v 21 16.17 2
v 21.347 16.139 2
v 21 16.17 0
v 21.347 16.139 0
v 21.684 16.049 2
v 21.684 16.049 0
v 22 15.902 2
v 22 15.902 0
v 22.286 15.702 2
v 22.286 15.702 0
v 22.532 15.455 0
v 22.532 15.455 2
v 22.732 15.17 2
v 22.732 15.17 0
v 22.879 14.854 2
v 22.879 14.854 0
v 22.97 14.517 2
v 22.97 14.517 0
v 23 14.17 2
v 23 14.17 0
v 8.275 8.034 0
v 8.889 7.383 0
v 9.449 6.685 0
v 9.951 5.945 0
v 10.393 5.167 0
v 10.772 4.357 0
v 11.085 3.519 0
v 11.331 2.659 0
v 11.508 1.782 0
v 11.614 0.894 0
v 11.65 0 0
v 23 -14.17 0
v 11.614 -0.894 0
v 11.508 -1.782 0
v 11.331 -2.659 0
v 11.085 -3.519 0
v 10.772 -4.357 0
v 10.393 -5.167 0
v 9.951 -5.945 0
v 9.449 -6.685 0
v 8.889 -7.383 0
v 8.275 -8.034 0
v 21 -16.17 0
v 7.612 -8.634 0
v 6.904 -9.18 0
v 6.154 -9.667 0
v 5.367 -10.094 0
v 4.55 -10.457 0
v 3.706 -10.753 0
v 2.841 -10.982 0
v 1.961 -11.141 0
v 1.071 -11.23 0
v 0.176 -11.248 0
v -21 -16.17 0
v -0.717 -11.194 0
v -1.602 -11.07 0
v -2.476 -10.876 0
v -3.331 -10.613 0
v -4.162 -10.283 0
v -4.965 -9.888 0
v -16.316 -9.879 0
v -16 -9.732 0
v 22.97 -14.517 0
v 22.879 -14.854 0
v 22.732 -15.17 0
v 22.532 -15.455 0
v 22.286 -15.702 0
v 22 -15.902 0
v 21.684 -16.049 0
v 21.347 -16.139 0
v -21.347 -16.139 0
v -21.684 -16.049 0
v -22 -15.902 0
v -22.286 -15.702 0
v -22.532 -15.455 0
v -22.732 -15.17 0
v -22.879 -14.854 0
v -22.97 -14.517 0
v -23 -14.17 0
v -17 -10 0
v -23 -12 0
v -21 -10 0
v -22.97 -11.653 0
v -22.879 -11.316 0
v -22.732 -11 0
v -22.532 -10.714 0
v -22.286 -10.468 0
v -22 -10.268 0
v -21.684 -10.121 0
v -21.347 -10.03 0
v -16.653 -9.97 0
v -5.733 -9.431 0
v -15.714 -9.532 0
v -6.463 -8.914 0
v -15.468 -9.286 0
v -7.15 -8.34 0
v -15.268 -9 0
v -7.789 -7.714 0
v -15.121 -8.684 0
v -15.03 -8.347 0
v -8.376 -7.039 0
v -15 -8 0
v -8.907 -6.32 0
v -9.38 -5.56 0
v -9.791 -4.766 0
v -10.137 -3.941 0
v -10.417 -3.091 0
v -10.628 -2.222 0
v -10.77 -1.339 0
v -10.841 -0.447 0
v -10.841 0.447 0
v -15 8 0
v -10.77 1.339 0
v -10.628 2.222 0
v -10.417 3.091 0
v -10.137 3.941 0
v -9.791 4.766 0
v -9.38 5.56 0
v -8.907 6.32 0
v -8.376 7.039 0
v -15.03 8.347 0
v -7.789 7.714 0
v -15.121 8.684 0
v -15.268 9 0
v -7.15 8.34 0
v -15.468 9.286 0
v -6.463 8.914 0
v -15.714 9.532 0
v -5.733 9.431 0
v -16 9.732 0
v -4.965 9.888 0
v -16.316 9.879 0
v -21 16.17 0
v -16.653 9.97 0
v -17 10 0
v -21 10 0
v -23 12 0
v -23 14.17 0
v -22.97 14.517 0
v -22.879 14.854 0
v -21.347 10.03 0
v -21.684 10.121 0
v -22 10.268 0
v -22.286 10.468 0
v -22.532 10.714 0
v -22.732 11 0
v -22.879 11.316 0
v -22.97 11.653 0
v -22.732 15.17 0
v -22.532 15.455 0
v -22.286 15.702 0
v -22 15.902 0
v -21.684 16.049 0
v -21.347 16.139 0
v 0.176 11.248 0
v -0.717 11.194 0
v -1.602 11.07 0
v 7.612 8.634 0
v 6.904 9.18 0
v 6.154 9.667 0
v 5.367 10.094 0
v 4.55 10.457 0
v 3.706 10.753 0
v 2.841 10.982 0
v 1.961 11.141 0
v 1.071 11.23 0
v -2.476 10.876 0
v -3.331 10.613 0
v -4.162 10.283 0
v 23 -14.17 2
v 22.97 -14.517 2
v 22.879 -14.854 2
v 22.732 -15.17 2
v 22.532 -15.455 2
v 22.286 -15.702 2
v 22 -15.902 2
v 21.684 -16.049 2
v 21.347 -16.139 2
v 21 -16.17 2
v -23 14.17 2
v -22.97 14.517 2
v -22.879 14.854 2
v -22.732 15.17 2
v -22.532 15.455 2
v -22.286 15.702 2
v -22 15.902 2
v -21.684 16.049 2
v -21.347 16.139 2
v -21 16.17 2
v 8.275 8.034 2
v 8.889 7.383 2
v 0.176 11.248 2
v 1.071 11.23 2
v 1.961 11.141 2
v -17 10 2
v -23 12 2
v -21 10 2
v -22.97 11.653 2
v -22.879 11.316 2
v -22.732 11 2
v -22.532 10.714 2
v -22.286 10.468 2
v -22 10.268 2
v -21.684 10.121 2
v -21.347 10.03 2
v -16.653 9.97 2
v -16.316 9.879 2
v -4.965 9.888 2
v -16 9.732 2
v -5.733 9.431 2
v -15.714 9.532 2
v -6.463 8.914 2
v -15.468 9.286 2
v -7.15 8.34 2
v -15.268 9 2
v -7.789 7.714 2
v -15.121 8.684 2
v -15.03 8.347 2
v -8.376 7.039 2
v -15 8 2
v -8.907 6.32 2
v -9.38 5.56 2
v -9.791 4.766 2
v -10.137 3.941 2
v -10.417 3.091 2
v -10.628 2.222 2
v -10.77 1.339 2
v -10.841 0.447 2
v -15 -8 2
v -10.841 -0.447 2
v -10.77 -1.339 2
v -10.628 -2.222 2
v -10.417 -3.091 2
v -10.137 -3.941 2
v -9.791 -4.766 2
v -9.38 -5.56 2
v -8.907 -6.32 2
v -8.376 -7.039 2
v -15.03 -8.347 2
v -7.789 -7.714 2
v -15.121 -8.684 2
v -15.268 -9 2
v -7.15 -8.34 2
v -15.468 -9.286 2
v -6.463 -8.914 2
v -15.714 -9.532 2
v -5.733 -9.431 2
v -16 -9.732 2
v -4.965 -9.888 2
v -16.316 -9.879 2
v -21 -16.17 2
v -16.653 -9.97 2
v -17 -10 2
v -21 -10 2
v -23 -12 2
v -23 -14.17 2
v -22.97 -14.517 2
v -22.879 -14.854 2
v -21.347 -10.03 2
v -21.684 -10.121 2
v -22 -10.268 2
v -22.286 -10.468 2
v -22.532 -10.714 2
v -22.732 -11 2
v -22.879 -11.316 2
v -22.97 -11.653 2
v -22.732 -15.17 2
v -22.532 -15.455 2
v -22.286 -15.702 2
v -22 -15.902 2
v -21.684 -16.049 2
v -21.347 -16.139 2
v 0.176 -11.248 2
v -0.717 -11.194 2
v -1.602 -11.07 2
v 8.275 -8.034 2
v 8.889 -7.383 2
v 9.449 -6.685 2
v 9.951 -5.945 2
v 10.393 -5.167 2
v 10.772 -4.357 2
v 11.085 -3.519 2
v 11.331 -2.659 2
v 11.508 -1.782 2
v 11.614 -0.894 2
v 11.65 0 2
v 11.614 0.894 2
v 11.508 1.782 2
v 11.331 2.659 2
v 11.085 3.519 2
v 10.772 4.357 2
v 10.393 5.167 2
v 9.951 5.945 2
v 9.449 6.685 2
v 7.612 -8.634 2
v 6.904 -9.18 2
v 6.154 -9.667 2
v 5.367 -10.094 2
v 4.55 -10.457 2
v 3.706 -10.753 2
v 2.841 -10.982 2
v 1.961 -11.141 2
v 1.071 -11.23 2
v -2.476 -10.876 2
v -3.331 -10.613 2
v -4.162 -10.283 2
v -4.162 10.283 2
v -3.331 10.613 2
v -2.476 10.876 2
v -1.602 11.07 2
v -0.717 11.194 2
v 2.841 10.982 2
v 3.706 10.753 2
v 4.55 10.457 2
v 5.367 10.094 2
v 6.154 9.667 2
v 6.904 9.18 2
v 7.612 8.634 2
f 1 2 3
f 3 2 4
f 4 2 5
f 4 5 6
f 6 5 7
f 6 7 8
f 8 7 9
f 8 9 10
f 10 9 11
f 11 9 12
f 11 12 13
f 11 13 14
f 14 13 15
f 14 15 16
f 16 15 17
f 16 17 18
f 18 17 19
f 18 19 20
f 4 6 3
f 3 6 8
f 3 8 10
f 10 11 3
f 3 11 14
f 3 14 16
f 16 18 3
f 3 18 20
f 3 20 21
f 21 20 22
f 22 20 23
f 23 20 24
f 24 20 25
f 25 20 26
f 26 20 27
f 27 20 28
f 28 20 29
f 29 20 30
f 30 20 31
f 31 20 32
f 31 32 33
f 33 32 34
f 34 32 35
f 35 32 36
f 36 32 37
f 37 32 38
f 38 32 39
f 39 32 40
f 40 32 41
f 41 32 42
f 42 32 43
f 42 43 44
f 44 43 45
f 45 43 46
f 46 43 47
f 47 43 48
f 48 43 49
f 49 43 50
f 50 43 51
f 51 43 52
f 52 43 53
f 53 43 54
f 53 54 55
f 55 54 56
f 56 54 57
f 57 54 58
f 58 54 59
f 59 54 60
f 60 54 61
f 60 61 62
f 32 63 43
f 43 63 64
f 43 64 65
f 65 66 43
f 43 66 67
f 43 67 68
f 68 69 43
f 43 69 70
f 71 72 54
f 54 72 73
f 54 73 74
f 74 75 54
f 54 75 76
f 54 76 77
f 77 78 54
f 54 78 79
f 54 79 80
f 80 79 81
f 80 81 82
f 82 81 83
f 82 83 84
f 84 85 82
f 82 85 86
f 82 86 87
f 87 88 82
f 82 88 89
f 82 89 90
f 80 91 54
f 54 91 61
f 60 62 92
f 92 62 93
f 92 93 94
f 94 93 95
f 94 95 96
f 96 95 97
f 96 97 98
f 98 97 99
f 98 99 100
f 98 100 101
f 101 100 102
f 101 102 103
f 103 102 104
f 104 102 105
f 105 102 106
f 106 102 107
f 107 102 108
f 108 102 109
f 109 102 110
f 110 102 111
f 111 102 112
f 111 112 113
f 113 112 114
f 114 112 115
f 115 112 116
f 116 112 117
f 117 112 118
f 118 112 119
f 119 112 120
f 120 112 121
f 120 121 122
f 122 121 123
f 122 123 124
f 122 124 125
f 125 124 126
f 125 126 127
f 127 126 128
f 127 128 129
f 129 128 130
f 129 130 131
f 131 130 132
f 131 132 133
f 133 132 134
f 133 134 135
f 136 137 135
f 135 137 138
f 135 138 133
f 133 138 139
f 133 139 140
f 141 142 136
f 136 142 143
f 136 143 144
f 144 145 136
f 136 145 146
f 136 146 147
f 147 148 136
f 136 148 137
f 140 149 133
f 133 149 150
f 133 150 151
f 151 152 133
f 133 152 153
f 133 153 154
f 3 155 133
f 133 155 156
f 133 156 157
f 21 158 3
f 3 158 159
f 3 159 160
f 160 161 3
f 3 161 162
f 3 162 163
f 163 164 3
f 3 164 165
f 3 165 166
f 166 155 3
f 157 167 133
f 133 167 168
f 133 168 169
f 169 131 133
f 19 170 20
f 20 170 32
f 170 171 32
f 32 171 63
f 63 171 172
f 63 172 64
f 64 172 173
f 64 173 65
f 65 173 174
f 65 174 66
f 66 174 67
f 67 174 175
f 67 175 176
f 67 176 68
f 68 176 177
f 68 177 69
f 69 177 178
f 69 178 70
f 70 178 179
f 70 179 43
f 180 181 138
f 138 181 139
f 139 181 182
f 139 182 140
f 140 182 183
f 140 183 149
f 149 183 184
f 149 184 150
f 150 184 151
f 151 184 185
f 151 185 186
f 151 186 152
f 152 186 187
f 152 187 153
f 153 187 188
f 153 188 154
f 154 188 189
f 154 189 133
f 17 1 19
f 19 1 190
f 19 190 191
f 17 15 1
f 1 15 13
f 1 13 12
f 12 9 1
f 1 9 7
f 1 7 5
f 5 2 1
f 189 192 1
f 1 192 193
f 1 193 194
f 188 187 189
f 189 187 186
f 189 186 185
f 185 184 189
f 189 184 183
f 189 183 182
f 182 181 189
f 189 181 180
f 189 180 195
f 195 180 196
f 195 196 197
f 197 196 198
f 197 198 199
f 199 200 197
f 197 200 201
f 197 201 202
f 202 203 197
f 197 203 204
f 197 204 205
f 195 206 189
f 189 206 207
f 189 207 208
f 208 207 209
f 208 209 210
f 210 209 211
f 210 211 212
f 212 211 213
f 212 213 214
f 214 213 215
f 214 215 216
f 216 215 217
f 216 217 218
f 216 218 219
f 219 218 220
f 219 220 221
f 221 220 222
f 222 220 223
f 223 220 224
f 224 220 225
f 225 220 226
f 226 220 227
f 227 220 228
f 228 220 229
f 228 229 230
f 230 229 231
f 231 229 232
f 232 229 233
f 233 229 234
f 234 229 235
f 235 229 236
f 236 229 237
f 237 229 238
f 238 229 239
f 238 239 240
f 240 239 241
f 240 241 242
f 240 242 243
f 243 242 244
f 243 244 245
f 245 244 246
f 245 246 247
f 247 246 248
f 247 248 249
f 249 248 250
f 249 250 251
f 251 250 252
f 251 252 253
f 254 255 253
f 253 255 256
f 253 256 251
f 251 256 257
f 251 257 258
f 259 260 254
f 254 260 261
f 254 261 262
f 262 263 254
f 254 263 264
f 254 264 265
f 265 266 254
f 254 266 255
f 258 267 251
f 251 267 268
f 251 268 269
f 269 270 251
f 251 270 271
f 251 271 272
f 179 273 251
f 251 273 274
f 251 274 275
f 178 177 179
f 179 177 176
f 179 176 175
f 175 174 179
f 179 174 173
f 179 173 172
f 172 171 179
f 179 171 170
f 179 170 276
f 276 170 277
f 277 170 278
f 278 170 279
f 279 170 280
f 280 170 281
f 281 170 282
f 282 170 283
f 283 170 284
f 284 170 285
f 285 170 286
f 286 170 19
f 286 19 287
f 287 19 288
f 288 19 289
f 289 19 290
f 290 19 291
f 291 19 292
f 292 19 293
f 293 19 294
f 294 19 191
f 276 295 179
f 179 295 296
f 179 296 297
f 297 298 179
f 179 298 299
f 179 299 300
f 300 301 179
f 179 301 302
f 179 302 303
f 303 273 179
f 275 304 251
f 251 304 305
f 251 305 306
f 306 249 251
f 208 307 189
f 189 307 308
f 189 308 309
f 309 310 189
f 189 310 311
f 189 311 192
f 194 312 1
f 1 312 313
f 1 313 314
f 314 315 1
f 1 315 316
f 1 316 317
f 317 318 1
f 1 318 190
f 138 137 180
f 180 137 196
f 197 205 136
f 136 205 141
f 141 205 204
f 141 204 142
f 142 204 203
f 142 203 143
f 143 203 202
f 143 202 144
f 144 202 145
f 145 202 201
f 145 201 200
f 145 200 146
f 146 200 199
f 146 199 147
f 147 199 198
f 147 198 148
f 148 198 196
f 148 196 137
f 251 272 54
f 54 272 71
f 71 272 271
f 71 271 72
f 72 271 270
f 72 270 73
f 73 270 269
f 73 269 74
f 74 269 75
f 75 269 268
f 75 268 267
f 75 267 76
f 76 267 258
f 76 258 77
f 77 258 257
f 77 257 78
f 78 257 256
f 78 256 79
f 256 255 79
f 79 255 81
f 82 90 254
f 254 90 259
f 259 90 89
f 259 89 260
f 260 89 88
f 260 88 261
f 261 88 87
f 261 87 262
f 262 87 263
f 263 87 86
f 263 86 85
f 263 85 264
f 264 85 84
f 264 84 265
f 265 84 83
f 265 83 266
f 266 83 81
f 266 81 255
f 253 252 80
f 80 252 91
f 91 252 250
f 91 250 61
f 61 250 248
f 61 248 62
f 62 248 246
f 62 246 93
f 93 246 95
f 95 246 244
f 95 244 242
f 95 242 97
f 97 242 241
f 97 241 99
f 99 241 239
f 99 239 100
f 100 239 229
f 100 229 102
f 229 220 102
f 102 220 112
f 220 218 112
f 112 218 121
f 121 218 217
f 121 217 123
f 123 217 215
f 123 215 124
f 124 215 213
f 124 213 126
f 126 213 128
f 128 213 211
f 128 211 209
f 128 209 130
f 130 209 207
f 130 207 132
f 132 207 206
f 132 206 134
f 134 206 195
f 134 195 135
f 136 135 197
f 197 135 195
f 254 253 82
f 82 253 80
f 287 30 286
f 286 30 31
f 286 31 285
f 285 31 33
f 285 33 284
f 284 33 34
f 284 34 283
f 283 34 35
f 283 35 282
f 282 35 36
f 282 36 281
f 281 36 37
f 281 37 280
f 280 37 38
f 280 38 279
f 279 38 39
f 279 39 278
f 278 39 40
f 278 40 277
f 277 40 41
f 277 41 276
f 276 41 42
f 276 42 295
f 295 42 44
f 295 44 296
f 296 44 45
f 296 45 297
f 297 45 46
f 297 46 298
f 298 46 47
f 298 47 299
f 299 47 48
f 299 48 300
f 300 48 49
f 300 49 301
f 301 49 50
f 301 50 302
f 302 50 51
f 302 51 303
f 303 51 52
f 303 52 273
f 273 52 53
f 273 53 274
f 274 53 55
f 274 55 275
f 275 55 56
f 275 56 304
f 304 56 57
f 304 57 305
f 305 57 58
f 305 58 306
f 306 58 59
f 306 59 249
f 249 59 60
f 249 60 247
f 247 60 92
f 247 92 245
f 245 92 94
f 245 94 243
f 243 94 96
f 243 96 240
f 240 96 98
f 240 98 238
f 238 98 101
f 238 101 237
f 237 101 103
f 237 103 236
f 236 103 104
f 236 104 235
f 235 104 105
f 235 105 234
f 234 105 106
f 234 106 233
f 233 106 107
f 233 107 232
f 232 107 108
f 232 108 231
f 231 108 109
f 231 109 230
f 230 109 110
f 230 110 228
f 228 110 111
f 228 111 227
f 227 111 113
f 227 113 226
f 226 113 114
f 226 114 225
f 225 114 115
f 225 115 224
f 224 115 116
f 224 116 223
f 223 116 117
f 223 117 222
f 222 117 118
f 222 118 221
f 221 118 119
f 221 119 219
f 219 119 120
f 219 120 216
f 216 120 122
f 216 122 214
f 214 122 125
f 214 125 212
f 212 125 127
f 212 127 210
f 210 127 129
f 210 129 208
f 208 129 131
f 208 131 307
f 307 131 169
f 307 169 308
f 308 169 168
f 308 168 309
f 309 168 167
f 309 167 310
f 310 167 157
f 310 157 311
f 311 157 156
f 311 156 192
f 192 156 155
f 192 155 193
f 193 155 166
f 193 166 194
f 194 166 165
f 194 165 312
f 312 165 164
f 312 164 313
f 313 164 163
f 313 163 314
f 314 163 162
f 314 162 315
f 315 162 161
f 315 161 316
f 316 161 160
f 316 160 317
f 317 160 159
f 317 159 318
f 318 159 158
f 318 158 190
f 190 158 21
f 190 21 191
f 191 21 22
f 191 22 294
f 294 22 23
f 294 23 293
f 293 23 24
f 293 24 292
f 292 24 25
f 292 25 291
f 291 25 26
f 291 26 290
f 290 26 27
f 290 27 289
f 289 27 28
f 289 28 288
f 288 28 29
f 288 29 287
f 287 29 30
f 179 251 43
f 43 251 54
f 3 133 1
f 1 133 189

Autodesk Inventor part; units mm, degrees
ref_plane "YZ Plane" through (0, 0, 0) normal (1, 0, 0) x (0, 1, 0)
ref_plane "XZ Plane" through (0, 0, 0) normal (0, 1, 0) x (-1, 0, 0)
ref_plane "XY Plane" through (0, 0, 0) normal (0, 0, 1) x (1, 0, 0)
sketch "Sketch1" plane through (0, 0, 0) normal (0, 0, 1) x (1, 0, 0)
  line L0 (-23, -16.1697) -> (23, -16.1697)
  line L1 (23, -16.1697) -> (23, 16.1697)
  line L2 (23, 16.1697) -> (-23, 16.1697)
  line L3 (-23, 16.1697) -> (-23, -16.1697)
  line L4 (-23, -16.1697) -> (23, 16.1697) construction
  line L5 (23, -16.1697) -> (-23, 16.1697) construction
  line L6 (-32.2, 0) -> (32.2, 0) projected
  circle A0 centre (0.4, 0) radius 11.25
  point P0 (0, 0)
  dimension "d0" = 46
  dimension "d1" = 22.5
  dimension "d2" = 22.6
extrude "Extrusion1" add sketch "Sketch1" along normal blind 2 contours L3 L6 A0 L1 L0 | L3 L2 L1 L6 A0
sketch "Sketch2" plane through (0, 0, 2) normal (0, 0, 1) x (1, 0, 0)
  line L0 (-32.2, 0) -> (32.2, 0) projected
  line L1 (-15, -10) -> (-23, -10)
  line L2 (-23, -10) -> (-23, 10)
  line L3 (-23, 10) -> (-15, 10)
  line L4 (-15, 10) -> (-15, -10)
  line L5 (-15, -10) -> (-23, 10) construction
  line L6 (-23, -10) -> (-15, 10) construction
  line L7 (-23, 16.1697) -> (-23, -16.1697) projected
  point P0 (0, 0)
  point P1 (-19, 0)
  dimension "d5" = 20
  dimension "d8" = 8
extrude "Extrusion2" cut sketch "Sketch2" against normal through all
fillet "Fillet1" radius 2 8 edges at (-15, 10, 1) (-15, -10, 1) (-23, -10, 1) (-23, -16.1697, 1) (-23, 10, 1) (-23, 16.1697, 1) (23, -16.1697, 1) (23, 16.1697, 1)
properties part number "_3DPrint"
